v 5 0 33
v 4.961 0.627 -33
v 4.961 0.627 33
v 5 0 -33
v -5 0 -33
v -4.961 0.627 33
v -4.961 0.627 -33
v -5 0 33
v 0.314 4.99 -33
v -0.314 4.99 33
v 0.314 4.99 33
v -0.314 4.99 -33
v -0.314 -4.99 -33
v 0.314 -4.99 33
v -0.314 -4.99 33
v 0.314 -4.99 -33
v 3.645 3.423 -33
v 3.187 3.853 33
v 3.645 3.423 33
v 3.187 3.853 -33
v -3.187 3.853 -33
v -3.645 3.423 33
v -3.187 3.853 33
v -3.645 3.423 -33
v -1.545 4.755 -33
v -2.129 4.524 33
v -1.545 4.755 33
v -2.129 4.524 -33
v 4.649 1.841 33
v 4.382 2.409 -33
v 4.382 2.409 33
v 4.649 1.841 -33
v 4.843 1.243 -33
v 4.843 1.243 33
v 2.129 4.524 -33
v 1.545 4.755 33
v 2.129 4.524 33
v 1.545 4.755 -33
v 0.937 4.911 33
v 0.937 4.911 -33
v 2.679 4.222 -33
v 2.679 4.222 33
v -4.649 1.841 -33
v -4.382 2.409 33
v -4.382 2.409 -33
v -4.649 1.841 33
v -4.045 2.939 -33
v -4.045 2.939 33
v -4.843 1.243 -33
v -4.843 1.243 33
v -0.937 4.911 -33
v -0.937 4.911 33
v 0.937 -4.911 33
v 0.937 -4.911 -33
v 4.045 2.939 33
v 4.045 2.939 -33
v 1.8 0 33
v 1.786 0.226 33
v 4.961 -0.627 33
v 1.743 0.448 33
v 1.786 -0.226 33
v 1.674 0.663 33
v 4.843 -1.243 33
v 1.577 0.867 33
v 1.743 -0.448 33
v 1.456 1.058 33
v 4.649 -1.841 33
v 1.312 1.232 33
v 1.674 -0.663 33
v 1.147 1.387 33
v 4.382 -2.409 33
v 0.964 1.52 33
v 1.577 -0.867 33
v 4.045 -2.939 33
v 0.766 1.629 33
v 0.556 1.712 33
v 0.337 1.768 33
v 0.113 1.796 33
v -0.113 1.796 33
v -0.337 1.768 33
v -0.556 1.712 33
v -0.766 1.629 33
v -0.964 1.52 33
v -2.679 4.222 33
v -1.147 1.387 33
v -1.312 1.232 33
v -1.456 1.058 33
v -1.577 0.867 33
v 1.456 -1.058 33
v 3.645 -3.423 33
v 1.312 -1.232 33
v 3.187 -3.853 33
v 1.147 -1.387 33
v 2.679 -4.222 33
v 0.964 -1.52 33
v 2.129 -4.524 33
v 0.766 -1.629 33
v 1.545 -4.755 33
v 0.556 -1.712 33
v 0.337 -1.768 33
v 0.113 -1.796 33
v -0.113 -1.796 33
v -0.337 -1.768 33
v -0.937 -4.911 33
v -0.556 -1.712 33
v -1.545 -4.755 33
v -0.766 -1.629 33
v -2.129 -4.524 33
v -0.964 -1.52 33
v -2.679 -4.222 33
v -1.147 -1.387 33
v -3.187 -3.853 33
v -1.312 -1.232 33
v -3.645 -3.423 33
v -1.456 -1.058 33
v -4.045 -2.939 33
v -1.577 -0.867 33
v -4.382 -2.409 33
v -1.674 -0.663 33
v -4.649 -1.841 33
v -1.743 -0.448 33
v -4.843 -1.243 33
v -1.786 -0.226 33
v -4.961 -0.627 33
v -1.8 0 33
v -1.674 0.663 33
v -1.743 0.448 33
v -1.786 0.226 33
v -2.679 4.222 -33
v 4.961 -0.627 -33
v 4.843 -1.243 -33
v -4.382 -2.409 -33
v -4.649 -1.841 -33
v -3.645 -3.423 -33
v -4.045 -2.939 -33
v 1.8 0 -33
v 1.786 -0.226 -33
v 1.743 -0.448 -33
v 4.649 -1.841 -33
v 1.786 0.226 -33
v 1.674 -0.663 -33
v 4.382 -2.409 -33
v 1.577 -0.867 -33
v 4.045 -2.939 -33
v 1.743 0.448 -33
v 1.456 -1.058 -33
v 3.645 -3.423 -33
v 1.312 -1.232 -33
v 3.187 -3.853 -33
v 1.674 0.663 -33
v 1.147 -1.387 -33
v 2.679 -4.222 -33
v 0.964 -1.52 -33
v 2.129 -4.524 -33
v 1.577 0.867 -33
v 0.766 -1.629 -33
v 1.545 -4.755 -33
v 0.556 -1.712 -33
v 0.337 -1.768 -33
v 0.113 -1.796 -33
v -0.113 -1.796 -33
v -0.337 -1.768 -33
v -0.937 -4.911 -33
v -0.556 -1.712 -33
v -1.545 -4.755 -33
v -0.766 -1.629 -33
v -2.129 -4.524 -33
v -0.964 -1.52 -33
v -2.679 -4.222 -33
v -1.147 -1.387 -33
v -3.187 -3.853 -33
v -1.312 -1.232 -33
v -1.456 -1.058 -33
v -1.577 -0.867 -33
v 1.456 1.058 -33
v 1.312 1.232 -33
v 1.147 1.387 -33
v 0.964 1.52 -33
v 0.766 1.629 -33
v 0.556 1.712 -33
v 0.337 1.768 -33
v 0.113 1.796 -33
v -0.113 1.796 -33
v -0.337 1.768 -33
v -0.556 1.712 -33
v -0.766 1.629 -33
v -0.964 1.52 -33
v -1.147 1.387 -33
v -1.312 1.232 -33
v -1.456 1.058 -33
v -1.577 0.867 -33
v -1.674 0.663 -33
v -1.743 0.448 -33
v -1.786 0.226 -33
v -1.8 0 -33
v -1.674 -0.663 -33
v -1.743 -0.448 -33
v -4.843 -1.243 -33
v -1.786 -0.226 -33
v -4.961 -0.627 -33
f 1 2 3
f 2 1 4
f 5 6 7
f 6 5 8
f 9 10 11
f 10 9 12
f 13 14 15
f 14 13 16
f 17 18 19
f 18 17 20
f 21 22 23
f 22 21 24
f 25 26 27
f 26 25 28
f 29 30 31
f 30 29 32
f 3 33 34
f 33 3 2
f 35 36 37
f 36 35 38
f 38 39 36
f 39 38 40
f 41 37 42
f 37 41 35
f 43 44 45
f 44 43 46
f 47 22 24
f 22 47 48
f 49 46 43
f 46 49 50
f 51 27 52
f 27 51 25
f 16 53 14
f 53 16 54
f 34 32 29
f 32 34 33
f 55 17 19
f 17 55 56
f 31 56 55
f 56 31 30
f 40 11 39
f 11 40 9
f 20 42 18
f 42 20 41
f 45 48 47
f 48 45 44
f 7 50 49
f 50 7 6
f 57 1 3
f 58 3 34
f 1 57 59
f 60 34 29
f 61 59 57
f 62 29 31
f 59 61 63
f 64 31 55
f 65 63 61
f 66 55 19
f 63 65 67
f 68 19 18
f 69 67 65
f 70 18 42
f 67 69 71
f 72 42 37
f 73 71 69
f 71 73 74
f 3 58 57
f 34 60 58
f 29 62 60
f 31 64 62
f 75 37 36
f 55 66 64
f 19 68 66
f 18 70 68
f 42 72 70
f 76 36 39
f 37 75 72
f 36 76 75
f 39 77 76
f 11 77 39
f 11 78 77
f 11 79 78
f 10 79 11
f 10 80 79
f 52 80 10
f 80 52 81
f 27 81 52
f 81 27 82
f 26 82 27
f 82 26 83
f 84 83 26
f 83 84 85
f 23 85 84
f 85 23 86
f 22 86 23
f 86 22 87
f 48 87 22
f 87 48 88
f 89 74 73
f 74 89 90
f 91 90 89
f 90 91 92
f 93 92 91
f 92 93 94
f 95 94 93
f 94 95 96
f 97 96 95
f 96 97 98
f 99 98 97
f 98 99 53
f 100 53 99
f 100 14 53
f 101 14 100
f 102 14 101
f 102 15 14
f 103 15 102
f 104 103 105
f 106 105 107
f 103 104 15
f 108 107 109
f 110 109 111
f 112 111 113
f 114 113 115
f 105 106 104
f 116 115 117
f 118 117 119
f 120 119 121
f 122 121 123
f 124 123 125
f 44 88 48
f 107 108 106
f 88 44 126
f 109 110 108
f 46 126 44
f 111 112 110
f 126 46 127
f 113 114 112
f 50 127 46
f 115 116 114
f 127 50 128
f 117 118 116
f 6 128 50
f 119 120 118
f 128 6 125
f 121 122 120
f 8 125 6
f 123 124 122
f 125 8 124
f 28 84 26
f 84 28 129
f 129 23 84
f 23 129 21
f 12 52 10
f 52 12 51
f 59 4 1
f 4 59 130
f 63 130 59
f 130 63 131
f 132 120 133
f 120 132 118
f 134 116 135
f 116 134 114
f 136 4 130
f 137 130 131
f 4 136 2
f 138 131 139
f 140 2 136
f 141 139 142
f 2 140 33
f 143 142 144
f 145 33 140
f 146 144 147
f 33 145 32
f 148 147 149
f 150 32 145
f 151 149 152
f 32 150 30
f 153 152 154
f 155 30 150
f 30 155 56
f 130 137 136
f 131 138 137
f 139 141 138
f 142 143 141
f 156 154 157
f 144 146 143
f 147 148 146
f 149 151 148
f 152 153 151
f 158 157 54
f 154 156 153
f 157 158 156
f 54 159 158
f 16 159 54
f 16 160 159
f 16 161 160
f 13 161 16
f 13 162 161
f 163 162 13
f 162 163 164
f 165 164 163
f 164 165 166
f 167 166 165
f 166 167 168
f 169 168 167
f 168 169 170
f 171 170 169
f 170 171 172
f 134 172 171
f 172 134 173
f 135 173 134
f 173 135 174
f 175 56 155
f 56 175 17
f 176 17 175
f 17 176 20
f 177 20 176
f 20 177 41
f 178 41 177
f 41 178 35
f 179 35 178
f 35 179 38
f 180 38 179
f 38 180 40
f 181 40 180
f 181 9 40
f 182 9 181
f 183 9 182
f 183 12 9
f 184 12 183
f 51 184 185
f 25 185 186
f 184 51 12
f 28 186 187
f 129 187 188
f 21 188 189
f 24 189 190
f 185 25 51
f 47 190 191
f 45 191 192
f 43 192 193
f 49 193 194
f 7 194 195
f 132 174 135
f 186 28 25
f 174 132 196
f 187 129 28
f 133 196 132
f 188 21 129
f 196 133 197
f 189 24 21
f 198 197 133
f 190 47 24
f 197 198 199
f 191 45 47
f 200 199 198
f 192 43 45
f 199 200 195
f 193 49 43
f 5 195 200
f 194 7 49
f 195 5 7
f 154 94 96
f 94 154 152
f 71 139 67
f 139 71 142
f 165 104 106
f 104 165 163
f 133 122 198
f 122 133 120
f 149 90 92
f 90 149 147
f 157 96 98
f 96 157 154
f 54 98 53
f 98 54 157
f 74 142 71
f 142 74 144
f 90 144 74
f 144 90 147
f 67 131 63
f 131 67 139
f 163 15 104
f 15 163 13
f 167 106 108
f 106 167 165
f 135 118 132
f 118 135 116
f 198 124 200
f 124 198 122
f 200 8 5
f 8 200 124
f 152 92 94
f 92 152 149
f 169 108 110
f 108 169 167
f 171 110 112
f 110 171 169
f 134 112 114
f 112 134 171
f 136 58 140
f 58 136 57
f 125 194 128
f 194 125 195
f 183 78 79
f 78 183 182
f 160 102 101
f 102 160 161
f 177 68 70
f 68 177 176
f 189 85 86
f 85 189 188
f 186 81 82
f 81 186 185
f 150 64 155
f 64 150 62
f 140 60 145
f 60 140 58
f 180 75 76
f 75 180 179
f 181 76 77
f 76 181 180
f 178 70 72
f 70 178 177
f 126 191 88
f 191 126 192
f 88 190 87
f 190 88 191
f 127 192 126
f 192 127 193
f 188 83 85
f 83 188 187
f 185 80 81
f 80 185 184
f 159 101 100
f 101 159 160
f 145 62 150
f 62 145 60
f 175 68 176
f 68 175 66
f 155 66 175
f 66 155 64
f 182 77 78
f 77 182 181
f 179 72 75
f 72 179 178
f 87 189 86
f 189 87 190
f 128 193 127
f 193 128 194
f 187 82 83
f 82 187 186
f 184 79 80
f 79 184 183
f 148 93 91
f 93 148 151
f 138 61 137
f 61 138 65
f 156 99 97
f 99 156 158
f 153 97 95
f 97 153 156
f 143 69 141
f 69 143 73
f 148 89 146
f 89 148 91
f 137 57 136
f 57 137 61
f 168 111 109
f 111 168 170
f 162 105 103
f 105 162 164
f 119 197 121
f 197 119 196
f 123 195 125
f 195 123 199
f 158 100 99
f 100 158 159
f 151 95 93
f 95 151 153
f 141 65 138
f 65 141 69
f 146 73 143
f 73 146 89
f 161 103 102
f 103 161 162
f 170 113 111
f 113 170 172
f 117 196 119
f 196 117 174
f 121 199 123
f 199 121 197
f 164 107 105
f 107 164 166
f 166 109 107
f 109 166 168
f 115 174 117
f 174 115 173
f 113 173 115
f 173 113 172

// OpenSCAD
$fn = 50;


difference() {
	union() {
		translate(v = [0, 0, -33.0000000000]) {
			cylinder(h = 66, r = 5.0000000000);
		}
	}
	union() {
		translate(v = [0, 0, -100.0000000000]) {
			cylinder(h = 200, r = 1.8000000000);
		}
	}
}
